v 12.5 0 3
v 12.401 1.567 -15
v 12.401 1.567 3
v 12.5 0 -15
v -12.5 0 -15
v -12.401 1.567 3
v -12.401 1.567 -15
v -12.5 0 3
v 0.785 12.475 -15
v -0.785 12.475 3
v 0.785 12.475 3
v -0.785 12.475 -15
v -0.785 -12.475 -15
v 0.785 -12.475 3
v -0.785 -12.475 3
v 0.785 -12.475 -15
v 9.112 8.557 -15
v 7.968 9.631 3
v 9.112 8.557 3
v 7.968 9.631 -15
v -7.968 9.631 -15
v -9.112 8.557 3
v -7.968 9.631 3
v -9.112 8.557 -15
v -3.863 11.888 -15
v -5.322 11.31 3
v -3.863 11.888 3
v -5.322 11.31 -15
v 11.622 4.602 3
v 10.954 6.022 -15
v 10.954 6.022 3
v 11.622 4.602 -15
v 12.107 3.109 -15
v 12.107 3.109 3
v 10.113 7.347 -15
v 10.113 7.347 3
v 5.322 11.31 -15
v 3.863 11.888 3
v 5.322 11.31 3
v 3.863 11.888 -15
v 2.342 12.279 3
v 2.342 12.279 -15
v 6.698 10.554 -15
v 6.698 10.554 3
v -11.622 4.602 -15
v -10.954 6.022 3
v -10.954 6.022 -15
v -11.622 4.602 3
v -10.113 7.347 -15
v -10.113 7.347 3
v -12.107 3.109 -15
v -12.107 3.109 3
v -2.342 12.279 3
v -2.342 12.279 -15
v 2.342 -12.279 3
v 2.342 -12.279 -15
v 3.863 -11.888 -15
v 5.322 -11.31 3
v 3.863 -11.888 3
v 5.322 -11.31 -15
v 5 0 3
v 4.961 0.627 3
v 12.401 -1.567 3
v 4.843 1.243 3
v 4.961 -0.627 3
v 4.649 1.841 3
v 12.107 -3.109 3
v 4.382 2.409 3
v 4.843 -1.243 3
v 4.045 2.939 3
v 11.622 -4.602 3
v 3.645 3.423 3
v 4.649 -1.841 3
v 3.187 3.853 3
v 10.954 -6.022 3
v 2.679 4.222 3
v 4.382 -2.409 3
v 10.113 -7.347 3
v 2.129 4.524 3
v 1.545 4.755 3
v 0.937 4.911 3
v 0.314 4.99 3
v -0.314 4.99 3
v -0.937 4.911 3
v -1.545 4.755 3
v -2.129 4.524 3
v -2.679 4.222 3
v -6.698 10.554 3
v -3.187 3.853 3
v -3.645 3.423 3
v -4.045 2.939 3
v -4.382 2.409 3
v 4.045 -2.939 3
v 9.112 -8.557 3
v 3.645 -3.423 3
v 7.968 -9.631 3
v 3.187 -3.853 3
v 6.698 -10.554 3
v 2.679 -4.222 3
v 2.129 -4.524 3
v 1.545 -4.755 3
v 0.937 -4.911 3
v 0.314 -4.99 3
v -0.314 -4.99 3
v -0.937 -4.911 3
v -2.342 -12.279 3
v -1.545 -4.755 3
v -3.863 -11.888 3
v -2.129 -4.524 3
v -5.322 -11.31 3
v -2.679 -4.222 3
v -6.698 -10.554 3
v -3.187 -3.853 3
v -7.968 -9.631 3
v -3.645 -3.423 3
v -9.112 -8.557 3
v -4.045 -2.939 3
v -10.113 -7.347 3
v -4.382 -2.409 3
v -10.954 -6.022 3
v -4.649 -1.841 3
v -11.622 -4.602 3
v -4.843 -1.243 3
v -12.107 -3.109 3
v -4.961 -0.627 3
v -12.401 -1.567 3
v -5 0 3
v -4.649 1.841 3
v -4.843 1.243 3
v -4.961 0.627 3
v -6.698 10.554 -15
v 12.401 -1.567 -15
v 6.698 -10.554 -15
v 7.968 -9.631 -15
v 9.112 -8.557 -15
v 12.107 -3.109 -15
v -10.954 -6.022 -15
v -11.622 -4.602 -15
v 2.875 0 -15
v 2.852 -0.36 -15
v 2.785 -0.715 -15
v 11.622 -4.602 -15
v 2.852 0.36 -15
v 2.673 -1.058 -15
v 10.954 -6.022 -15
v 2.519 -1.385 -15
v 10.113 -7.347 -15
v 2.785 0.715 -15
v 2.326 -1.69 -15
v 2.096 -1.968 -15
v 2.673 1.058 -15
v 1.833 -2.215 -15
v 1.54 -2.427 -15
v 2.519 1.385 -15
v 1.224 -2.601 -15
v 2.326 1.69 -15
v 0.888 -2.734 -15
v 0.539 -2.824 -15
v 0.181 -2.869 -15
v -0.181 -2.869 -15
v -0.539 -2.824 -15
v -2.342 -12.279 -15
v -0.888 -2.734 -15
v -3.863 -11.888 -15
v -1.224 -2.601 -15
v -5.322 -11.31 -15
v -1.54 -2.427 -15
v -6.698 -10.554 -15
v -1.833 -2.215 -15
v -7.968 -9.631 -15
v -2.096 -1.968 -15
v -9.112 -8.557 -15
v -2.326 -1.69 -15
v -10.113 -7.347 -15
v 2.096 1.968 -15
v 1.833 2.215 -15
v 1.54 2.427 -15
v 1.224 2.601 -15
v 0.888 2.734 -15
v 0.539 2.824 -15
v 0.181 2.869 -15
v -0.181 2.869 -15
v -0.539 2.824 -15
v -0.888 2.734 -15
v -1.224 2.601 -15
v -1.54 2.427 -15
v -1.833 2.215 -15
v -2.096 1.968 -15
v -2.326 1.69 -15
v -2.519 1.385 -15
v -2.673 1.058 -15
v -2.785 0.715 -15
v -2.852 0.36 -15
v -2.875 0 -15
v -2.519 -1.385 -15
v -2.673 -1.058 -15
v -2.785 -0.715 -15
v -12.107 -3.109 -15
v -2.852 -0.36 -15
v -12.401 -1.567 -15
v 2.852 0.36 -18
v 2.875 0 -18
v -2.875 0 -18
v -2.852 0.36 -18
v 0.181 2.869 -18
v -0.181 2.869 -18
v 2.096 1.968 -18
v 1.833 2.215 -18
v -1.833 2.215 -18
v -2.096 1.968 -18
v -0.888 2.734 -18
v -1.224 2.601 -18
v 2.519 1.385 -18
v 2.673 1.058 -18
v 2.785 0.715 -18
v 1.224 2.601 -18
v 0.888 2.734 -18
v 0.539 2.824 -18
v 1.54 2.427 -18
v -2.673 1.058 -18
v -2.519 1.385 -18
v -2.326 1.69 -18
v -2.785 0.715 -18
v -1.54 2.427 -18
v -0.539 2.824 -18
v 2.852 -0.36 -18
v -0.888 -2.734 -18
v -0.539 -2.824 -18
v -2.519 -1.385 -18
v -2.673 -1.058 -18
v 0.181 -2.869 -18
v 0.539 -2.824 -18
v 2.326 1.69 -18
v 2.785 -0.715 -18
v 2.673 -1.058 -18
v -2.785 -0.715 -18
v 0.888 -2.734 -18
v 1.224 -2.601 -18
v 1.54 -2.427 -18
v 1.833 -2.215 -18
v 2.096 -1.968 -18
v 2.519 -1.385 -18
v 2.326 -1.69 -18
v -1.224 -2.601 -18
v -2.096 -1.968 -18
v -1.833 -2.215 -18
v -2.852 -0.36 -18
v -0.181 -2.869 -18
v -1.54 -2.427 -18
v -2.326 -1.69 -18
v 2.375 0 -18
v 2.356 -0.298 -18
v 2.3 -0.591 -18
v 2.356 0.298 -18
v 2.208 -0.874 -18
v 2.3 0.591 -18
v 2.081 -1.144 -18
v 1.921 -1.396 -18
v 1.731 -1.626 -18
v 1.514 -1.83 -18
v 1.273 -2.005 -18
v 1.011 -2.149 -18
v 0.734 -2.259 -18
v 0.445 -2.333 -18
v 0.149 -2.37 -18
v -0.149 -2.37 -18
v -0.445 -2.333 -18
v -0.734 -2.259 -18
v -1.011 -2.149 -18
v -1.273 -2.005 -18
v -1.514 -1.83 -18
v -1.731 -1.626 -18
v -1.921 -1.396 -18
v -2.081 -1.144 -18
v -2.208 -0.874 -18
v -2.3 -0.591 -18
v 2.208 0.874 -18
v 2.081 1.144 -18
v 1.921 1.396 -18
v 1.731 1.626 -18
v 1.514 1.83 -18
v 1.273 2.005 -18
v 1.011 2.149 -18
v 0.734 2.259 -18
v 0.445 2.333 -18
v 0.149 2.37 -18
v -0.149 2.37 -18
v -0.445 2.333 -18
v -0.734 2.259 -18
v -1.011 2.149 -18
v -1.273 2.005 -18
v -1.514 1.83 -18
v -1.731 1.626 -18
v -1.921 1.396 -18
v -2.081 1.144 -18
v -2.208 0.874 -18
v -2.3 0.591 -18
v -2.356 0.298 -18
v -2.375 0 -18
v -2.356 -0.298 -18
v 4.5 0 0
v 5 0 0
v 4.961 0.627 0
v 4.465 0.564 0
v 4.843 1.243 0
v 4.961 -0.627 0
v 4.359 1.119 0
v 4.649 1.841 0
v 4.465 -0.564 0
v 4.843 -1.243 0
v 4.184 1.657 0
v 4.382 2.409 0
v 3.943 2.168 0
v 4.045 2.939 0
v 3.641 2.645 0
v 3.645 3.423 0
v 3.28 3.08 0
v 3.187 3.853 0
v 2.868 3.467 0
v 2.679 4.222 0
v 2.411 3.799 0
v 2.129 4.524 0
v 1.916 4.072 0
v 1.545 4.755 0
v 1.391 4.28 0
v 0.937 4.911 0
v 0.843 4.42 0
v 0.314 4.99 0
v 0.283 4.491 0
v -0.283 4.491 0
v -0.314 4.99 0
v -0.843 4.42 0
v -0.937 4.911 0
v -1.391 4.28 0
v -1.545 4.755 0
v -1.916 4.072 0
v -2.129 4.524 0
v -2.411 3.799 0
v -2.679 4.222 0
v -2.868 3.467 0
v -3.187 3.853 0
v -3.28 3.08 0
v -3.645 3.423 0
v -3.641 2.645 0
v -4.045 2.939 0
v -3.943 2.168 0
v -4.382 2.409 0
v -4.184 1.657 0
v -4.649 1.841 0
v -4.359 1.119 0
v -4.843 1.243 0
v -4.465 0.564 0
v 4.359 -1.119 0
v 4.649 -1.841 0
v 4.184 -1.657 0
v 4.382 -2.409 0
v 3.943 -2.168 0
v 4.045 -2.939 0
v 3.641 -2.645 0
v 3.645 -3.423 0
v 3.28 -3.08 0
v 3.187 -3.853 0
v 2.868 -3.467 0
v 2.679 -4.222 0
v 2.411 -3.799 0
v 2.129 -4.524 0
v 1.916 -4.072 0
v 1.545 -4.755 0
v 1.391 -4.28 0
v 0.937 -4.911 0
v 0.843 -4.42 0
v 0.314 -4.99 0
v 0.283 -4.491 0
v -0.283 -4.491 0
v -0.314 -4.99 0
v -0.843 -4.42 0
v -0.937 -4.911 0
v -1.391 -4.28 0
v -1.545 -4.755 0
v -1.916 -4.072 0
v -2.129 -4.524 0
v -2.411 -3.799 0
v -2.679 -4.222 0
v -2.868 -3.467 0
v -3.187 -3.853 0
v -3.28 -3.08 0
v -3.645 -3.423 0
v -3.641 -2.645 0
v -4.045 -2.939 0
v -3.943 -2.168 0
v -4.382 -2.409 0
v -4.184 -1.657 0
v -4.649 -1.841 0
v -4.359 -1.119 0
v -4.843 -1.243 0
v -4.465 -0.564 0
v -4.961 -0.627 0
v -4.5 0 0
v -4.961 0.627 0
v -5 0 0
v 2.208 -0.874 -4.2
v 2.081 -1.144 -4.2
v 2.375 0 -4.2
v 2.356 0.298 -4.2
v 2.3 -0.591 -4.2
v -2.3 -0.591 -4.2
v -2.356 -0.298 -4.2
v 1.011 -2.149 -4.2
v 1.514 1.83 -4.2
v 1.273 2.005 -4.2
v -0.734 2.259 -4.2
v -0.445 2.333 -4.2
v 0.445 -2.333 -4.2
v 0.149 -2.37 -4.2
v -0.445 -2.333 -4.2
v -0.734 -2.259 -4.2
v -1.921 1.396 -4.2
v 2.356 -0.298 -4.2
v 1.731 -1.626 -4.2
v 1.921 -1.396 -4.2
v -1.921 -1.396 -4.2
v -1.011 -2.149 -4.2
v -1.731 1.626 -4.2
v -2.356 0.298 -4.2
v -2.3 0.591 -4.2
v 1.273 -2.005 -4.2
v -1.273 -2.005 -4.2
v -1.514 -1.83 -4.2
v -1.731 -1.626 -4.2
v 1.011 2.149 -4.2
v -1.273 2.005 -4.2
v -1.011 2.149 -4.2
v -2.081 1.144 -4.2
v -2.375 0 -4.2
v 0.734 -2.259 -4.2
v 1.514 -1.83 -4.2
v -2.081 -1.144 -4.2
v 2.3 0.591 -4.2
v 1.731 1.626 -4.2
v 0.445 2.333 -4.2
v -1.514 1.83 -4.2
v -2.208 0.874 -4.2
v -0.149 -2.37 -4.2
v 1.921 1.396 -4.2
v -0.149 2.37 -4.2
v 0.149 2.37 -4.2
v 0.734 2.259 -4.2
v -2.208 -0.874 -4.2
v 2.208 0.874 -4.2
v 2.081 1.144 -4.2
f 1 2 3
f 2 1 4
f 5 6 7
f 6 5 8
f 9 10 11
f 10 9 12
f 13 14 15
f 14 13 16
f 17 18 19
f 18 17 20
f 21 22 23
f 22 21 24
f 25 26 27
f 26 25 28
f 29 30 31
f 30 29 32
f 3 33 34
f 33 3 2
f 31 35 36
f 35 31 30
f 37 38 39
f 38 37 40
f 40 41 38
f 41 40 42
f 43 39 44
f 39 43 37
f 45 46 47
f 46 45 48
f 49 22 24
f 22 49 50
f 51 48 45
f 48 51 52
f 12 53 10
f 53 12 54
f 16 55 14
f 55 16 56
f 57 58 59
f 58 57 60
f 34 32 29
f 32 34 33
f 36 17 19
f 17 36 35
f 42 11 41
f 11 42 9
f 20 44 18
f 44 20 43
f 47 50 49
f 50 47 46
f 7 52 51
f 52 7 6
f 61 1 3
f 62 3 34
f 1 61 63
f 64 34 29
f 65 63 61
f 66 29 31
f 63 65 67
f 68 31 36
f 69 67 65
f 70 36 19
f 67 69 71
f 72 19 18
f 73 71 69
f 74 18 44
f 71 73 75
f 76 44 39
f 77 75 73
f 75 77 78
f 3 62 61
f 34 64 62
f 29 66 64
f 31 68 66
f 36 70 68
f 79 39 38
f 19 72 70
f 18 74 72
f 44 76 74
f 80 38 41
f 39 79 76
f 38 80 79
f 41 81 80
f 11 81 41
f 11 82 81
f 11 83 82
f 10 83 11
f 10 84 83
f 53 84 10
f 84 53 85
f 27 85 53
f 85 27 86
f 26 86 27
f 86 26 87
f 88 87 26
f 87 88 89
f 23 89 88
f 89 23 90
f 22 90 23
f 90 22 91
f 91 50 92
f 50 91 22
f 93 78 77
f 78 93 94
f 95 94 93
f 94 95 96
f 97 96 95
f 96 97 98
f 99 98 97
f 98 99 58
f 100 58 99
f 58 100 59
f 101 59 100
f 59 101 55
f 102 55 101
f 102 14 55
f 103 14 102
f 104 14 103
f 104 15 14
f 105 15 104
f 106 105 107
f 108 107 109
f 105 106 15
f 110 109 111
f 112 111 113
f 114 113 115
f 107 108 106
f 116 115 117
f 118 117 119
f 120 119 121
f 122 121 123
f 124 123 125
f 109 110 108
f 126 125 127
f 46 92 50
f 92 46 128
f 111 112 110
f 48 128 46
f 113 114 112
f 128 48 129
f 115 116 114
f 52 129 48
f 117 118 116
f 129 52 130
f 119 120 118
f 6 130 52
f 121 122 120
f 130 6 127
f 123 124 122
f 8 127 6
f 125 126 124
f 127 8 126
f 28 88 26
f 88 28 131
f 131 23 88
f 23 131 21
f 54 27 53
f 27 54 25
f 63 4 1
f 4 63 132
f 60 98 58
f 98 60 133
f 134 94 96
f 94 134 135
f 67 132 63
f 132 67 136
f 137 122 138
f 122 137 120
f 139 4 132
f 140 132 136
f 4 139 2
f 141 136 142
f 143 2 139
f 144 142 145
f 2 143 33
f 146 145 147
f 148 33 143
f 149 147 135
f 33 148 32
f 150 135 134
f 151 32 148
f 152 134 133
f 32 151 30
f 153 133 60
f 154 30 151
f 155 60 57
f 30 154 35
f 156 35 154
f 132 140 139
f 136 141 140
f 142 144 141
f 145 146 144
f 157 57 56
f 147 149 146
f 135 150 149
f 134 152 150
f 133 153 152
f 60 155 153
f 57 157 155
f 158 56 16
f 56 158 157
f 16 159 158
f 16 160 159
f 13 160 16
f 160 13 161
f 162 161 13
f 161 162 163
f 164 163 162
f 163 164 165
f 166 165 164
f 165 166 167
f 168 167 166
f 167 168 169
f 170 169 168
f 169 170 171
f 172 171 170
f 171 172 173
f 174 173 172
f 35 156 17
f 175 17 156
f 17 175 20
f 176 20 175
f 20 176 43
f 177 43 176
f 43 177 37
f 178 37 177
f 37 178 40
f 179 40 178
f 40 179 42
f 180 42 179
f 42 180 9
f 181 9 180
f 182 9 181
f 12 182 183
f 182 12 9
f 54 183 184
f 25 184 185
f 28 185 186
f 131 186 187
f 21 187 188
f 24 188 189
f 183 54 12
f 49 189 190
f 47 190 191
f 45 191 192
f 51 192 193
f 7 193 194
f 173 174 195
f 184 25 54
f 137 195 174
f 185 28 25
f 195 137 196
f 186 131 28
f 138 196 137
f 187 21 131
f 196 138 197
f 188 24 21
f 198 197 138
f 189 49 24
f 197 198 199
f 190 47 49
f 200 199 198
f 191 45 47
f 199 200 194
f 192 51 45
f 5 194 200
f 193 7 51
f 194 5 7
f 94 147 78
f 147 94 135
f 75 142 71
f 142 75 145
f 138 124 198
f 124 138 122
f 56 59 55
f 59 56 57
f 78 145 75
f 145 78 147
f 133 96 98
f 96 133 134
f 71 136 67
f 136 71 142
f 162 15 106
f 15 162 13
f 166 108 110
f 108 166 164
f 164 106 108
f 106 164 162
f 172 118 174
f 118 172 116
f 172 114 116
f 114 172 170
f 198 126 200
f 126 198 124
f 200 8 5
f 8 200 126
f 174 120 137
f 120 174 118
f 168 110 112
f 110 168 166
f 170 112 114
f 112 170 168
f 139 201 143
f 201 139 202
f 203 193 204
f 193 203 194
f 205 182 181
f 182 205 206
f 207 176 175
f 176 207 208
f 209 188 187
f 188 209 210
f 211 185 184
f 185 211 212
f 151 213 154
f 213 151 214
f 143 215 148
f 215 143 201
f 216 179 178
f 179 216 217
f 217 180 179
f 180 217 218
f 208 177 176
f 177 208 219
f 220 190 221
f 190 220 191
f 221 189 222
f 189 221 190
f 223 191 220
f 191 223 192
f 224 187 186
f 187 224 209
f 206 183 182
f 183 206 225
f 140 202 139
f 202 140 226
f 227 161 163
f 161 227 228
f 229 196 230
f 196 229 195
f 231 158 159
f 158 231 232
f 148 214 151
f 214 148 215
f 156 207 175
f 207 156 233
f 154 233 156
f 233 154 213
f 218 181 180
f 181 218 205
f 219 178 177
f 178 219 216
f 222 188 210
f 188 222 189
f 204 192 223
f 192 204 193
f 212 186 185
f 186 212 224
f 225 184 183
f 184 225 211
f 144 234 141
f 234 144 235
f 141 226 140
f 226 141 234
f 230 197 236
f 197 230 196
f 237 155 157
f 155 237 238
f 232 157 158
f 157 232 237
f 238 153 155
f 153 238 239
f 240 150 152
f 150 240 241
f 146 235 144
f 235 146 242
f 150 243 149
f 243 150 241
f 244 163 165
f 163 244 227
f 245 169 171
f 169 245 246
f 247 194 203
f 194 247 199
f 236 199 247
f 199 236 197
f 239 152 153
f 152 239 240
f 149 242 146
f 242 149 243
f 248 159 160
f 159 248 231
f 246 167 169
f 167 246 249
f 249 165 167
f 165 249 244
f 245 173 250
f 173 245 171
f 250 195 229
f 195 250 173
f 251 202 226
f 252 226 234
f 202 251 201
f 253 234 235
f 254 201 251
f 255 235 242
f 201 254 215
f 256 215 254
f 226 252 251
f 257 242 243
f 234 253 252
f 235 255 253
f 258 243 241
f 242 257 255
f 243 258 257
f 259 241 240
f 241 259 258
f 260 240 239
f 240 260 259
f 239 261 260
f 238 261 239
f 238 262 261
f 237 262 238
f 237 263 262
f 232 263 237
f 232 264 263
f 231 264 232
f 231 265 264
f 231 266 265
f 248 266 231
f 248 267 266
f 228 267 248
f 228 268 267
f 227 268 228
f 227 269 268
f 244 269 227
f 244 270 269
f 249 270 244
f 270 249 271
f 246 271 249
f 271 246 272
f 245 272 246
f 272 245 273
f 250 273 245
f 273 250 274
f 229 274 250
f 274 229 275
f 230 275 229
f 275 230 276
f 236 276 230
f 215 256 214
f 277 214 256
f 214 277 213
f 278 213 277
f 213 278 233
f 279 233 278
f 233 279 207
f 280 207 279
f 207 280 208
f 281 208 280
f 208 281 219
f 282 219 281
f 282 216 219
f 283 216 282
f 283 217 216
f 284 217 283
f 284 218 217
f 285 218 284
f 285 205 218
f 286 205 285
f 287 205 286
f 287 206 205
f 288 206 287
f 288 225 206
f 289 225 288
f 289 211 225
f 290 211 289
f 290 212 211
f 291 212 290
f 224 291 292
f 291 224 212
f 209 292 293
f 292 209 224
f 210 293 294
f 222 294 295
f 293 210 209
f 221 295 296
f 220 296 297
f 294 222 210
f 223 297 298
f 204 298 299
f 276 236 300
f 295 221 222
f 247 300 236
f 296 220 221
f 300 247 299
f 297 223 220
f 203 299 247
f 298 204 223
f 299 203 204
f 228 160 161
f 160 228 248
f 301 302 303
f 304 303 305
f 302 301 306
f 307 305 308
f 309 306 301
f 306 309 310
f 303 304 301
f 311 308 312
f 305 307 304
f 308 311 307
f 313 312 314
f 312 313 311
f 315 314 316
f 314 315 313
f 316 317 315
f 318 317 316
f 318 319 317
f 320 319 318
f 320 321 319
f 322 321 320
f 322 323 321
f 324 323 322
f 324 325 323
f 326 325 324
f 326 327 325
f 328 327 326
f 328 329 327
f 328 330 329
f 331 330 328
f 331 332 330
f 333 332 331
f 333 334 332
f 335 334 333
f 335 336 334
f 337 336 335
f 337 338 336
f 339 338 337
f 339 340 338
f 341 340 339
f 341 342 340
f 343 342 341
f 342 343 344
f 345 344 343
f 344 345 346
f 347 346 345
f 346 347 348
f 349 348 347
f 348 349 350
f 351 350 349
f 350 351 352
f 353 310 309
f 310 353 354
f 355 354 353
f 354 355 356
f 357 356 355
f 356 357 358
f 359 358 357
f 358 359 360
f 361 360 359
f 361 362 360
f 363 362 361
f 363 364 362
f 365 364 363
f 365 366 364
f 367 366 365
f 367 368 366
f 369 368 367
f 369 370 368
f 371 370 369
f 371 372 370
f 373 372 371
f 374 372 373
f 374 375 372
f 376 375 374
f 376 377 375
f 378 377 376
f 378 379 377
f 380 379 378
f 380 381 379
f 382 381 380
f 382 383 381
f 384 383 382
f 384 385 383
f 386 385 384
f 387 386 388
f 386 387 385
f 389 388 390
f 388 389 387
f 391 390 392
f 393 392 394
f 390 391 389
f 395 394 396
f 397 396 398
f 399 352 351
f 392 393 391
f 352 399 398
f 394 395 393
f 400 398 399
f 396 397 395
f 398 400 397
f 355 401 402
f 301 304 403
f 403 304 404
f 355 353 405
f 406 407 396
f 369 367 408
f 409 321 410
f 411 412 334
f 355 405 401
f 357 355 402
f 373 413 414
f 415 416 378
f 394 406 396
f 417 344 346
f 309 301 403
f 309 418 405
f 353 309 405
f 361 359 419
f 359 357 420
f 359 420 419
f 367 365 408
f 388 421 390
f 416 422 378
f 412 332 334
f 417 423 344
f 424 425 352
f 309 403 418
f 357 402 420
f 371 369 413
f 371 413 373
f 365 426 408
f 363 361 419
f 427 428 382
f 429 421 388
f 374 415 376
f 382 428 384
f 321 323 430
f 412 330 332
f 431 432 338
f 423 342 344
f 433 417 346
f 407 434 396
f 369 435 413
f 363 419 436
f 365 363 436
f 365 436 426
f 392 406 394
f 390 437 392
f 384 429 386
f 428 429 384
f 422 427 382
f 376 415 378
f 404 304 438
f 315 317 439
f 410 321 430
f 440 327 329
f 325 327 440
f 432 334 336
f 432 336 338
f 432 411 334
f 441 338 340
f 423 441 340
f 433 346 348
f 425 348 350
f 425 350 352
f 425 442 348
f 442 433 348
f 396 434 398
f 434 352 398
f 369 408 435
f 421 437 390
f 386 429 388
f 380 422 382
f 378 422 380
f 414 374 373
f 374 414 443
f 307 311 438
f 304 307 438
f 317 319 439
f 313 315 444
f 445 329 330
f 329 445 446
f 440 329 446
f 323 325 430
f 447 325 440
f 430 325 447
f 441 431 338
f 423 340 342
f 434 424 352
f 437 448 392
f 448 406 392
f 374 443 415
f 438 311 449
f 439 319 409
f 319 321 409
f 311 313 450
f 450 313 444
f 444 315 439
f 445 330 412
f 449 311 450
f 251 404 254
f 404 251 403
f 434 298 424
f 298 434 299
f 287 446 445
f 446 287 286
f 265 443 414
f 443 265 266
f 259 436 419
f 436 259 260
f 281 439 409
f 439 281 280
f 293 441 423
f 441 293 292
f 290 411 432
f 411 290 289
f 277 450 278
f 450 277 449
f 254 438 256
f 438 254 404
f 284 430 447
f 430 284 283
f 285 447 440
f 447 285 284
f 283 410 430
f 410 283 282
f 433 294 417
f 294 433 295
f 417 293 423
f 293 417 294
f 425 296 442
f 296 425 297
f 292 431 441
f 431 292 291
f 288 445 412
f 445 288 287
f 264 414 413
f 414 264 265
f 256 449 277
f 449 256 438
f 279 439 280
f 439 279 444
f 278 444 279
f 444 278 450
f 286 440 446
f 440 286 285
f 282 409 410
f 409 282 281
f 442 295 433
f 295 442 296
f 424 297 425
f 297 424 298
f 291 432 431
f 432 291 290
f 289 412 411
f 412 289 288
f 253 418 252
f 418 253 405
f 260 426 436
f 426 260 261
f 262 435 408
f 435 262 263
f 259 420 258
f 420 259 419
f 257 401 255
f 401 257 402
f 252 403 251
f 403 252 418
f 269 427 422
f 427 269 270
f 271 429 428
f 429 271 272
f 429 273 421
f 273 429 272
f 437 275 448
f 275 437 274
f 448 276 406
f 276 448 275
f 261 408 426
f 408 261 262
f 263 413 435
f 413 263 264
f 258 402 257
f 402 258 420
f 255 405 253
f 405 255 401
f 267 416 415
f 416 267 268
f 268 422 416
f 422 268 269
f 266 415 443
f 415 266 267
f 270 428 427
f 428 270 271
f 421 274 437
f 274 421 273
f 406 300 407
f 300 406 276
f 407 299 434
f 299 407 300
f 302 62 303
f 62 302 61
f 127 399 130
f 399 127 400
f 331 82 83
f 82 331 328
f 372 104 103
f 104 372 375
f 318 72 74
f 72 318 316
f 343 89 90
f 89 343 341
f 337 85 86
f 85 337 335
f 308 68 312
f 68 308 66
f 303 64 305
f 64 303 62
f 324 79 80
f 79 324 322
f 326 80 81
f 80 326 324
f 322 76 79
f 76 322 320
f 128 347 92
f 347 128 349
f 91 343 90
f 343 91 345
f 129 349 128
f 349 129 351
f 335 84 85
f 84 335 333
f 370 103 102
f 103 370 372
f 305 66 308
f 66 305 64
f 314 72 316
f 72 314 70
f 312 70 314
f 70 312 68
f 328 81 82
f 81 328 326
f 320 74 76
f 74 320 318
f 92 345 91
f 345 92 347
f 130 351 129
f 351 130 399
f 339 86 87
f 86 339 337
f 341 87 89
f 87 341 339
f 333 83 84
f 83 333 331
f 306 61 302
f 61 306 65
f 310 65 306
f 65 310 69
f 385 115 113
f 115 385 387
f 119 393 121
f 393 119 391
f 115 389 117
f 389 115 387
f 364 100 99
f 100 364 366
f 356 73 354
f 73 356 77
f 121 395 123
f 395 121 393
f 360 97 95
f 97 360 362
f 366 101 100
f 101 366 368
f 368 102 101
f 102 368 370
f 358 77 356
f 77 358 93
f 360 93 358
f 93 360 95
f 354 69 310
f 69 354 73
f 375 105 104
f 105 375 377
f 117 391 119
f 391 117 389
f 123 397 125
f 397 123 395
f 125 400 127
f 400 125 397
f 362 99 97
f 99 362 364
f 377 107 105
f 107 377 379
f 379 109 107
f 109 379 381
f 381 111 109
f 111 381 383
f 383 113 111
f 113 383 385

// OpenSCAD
$fn = 50;


difference() {
	union() {
		translate(v = [0, 0, -15.0000000000]) {
			cylinder(h = 18, r = 12.5000000000);
		}
		#translate(v = [0, 0, -18.0000000000]) {
			cylinder(h = 18, r = 2.8750000000);
		}
	}
	union() {
		translate(v = [0, 0, 0]) {
			rotate(a = [0, 0, 0]) {
				difference() {
					union() {
						translate(v = [0, 0, -18.0000000000]) {
							cylinder(h = 18, r = 2.2500000000);
						}
						translate(v = [0, 0, -4.2000000000]) {
							cylinder(h = 4.2000000000, r1 = 2.3750000000, r2 = 4.5000000000);
						}
						translate(v = [0, 0, -18.0000000000]) {
							cylinder(h = 18, r = 2.3750000000);
						}
						translate(v = [0, 0, -18.0000000000]) {
							cylinder(h = 18, r = 2.2500000000);
						}
					}
					union();
				}
			}
		}
		#cylinder(h = 3, r = 5.0000000000);
	}
}
